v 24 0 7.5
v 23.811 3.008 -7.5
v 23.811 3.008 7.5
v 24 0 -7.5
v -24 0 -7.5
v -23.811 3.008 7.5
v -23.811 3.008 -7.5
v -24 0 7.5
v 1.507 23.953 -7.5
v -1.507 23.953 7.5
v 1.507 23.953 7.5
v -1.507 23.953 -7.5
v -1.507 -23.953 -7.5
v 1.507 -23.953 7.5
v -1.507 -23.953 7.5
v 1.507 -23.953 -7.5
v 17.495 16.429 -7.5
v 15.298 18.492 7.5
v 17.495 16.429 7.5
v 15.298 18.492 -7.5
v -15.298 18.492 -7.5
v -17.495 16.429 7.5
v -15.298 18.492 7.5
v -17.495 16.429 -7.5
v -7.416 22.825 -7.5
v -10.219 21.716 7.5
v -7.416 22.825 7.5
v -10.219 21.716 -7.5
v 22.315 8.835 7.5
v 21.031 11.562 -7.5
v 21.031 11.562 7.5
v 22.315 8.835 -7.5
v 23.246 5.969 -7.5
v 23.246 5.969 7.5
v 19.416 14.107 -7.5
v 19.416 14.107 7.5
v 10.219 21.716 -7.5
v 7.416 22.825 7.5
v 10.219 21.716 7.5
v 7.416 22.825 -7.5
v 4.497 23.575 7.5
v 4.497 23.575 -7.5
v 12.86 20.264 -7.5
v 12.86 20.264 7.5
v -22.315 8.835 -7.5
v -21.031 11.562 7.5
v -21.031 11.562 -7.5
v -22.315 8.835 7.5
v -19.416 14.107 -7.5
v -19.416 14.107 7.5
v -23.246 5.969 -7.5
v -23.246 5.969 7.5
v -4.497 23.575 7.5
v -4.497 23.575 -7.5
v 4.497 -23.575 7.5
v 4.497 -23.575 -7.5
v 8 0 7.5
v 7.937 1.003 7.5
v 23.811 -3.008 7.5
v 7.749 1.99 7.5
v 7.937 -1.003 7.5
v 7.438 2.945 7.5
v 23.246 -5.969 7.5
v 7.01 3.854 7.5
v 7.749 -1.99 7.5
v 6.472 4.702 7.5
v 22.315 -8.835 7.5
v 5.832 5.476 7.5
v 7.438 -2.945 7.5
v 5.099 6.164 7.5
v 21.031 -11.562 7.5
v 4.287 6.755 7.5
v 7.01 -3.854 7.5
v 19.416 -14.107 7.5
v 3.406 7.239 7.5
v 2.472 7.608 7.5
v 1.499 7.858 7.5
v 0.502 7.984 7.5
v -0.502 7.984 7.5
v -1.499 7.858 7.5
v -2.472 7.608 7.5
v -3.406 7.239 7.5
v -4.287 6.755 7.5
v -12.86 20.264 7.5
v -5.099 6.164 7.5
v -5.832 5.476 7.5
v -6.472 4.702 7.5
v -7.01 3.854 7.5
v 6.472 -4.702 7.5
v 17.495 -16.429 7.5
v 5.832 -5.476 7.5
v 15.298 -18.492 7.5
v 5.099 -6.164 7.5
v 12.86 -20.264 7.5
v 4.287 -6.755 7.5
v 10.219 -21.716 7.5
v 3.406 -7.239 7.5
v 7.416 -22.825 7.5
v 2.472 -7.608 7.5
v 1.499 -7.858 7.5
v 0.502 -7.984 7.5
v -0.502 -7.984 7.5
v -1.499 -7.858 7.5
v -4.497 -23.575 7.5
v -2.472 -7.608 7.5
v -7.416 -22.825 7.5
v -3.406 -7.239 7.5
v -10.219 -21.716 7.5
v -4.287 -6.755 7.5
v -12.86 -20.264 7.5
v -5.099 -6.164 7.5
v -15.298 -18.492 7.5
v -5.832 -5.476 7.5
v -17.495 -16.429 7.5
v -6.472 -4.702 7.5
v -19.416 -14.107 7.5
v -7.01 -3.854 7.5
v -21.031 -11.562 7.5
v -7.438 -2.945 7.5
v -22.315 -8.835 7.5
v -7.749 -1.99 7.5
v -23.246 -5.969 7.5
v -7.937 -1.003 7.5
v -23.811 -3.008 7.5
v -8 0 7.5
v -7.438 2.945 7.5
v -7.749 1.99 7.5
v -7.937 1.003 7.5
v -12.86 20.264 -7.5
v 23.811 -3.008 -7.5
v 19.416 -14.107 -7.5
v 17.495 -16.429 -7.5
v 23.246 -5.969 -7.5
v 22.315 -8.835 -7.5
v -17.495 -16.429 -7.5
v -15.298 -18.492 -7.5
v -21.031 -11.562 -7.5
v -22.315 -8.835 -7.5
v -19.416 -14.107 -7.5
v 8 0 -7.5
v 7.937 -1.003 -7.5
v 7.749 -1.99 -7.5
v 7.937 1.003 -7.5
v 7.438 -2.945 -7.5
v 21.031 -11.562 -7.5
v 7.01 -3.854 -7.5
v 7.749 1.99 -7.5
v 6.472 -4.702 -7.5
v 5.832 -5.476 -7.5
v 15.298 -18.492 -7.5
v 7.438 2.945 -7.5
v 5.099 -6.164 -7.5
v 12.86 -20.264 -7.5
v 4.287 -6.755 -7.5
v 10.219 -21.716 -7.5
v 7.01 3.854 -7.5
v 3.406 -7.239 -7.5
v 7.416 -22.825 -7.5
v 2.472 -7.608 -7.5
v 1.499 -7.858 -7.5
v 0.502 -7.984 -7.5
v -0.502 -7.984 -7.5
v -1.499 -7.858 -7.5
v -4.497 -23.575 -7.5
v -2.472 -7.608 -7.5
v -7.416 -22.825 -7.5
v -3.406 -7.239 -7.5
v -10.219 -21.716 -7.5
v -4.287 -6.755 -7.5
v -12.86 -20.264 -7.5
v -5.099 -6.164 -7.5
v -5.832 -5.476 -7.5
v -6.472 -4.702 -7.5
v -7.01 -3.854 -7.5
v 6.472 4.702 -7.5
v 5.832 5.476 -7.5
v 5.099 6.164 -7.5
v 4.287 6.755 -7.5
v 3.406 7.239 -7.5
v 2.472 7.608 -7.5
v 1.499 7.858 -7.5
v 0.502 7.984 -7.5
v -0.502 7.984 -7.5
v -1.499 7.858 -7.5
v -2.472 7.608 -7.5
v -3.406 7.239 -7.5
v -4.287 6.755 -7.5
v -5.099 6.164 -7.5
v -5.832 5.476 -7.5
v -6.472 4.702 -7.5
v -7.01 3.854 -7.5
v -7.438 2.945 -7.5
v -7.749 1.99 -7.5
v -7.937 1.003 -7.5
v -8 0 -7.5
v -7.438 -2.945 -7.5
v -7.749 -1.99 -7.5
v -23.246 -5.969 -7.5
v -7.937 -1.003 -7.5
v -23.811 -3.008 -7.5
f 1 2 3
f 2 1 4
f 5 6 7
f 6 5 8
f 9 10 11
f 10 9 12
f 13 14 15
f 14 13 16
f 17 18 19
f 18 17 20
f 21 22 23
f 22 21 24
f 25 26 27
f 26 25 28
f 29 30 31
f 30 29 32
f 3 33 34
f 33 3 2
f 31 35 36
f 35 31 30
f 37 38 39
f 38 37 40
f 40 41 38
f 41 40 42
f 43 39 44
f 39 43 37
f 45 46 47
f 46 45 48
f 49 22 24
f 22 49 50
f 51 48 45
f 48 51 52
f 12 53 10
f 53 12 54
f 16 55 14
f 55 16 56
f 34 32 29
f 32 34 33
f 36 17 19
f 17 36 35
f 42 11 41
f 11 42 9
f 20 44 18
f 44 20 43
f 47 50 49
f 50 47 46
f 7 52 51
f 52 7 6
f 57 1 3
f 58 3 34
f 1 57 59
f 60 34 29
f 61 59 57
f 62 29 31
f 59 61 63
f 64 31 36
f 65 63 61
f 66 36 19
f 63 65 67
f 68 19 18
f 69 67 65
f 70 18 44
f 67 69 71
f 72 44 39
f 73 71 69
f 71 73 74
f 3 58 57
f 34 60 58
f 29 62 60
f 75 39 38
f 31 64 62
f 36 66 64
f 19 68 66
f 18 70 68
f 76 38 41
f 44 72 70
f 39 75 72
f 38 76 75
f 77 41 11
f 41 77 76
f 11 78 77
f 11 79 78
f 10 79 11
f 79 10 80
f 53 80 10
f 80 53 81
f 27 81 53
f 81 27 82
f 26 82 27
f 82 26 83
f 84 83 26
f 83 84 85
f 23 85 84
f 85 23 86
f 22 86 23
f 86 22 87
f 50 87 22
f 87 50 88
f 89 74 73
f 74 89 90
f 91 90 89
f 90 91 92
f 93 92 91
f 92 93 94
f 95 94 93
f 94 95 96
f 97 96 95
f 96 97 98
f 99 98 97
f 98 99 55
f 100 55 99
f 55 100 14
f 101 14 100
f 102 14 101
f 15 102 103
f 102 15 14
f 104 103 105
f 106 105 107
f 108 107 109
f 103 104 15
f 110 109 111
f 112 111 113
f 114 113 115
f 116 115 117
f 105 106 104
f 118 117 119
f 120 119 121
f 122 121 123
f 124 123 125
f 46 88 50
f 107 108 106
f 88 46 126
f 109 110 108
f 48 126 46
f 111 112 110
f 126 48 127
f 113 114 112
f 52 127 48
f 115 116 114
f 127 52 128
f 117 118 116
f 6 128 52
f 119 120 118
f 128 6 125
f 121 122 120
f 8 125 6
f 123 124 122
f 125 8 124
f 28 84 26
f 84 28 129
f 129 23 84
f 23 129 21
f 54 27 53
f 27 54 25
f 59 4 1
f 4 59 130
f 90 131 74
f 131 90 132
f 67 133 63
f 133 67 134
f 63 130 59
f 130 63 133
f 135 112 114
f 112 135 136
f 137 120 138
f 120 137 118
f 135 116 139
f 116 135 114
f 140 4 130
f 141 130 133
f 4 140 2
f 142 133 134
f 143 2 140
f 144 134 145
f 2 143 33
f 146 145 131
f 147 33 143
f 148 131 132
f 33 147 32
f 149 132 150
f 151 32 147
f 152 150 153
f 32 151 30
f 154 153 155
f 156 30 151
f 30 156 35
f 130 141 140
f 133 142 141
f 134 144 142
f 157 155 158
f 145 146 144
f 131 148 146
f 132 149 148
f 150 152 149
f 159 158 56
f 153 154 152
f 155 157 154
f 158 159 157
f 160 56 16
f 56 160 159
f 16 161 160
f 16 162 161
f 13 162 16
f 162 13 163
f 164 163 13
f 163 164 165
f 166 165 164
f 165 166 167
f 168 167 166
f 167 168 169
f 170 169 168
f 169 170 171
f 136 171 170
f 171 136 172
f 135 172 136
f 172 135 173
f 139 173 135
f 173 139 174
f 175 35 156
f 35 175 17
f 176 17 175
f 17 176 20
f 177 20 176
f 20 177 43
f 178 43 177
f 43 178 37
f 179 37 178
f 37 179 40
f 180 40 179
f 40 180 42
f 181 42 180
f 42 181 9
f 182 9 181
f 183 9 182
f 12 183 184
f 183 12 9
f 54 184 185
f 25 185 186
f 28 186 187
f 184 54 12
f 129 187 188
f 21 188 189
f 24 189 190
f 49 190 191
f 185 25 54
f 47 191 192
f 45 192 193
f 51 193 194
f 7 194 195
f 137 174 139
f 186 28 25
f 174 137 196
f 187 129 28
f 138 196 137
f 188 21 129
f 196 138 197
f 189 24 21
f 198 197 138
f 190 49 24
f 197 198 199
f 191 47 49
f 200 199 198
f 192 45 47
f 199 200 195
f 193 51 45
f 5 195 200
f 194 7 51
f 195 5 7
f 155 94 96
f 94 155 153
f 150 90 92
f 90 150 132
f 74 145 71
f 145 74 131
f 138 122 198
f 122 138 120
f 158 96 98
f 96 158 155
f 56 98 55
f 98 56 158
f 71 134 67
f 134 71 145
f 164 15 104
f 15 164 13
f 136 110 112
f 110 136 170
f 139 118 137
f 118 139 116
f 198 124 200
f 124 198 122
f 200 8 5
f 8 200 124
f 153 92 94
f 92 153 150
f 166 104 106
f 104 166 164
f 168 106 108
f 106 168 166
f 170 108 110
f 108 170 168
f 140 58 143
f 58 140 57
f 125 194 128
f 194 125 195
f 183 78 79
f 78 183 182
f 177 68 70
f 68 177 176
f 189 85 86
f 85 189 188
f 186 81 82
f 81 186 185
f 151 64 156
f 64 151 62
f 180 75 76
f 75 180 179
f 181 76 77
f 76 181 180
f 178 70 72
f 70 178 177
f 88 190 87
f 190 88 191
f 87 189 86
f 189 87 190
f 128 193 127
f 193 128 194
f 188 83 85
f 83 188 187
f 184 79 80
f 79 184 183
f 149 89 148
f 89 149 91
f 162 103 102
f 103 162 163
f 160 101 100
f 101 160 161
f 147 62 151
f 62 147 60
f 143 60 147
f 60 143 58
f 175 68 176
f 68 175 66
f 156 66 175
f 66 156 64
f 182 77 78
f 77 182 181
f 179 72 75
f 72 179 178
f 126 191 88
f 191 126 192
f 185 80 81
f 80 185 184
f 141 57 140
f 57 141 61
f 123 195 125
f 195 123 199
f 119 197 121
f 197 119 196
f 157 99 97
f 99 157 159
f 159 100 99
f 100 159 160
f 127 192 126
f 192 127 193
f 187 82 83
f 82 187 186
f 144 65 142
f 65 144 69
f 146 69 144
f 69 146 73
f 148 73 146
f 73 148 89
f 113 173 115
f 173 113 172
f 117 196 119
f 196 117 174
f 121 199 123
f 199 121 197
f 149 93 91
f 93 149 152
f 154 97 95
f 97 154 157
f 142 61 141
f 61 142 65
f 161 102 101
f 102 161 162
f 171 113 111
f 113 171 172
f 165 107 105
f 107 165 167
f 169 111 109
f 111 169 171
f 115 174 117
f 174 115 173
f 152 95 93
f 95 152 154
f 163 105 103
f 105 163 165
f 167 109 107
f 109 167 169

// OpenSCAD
$fn = 50;


difference() {
	union() {
		translate(v = [0, 0, -7.5000000000]) {
			cylinder(h = 15, r = 24.0000000000);
		}
	}
	union() {
		translate(v = [0, 0, -100.0000000000]) {
			cylinder(h = 200, r = 8);
		}
	}
}
